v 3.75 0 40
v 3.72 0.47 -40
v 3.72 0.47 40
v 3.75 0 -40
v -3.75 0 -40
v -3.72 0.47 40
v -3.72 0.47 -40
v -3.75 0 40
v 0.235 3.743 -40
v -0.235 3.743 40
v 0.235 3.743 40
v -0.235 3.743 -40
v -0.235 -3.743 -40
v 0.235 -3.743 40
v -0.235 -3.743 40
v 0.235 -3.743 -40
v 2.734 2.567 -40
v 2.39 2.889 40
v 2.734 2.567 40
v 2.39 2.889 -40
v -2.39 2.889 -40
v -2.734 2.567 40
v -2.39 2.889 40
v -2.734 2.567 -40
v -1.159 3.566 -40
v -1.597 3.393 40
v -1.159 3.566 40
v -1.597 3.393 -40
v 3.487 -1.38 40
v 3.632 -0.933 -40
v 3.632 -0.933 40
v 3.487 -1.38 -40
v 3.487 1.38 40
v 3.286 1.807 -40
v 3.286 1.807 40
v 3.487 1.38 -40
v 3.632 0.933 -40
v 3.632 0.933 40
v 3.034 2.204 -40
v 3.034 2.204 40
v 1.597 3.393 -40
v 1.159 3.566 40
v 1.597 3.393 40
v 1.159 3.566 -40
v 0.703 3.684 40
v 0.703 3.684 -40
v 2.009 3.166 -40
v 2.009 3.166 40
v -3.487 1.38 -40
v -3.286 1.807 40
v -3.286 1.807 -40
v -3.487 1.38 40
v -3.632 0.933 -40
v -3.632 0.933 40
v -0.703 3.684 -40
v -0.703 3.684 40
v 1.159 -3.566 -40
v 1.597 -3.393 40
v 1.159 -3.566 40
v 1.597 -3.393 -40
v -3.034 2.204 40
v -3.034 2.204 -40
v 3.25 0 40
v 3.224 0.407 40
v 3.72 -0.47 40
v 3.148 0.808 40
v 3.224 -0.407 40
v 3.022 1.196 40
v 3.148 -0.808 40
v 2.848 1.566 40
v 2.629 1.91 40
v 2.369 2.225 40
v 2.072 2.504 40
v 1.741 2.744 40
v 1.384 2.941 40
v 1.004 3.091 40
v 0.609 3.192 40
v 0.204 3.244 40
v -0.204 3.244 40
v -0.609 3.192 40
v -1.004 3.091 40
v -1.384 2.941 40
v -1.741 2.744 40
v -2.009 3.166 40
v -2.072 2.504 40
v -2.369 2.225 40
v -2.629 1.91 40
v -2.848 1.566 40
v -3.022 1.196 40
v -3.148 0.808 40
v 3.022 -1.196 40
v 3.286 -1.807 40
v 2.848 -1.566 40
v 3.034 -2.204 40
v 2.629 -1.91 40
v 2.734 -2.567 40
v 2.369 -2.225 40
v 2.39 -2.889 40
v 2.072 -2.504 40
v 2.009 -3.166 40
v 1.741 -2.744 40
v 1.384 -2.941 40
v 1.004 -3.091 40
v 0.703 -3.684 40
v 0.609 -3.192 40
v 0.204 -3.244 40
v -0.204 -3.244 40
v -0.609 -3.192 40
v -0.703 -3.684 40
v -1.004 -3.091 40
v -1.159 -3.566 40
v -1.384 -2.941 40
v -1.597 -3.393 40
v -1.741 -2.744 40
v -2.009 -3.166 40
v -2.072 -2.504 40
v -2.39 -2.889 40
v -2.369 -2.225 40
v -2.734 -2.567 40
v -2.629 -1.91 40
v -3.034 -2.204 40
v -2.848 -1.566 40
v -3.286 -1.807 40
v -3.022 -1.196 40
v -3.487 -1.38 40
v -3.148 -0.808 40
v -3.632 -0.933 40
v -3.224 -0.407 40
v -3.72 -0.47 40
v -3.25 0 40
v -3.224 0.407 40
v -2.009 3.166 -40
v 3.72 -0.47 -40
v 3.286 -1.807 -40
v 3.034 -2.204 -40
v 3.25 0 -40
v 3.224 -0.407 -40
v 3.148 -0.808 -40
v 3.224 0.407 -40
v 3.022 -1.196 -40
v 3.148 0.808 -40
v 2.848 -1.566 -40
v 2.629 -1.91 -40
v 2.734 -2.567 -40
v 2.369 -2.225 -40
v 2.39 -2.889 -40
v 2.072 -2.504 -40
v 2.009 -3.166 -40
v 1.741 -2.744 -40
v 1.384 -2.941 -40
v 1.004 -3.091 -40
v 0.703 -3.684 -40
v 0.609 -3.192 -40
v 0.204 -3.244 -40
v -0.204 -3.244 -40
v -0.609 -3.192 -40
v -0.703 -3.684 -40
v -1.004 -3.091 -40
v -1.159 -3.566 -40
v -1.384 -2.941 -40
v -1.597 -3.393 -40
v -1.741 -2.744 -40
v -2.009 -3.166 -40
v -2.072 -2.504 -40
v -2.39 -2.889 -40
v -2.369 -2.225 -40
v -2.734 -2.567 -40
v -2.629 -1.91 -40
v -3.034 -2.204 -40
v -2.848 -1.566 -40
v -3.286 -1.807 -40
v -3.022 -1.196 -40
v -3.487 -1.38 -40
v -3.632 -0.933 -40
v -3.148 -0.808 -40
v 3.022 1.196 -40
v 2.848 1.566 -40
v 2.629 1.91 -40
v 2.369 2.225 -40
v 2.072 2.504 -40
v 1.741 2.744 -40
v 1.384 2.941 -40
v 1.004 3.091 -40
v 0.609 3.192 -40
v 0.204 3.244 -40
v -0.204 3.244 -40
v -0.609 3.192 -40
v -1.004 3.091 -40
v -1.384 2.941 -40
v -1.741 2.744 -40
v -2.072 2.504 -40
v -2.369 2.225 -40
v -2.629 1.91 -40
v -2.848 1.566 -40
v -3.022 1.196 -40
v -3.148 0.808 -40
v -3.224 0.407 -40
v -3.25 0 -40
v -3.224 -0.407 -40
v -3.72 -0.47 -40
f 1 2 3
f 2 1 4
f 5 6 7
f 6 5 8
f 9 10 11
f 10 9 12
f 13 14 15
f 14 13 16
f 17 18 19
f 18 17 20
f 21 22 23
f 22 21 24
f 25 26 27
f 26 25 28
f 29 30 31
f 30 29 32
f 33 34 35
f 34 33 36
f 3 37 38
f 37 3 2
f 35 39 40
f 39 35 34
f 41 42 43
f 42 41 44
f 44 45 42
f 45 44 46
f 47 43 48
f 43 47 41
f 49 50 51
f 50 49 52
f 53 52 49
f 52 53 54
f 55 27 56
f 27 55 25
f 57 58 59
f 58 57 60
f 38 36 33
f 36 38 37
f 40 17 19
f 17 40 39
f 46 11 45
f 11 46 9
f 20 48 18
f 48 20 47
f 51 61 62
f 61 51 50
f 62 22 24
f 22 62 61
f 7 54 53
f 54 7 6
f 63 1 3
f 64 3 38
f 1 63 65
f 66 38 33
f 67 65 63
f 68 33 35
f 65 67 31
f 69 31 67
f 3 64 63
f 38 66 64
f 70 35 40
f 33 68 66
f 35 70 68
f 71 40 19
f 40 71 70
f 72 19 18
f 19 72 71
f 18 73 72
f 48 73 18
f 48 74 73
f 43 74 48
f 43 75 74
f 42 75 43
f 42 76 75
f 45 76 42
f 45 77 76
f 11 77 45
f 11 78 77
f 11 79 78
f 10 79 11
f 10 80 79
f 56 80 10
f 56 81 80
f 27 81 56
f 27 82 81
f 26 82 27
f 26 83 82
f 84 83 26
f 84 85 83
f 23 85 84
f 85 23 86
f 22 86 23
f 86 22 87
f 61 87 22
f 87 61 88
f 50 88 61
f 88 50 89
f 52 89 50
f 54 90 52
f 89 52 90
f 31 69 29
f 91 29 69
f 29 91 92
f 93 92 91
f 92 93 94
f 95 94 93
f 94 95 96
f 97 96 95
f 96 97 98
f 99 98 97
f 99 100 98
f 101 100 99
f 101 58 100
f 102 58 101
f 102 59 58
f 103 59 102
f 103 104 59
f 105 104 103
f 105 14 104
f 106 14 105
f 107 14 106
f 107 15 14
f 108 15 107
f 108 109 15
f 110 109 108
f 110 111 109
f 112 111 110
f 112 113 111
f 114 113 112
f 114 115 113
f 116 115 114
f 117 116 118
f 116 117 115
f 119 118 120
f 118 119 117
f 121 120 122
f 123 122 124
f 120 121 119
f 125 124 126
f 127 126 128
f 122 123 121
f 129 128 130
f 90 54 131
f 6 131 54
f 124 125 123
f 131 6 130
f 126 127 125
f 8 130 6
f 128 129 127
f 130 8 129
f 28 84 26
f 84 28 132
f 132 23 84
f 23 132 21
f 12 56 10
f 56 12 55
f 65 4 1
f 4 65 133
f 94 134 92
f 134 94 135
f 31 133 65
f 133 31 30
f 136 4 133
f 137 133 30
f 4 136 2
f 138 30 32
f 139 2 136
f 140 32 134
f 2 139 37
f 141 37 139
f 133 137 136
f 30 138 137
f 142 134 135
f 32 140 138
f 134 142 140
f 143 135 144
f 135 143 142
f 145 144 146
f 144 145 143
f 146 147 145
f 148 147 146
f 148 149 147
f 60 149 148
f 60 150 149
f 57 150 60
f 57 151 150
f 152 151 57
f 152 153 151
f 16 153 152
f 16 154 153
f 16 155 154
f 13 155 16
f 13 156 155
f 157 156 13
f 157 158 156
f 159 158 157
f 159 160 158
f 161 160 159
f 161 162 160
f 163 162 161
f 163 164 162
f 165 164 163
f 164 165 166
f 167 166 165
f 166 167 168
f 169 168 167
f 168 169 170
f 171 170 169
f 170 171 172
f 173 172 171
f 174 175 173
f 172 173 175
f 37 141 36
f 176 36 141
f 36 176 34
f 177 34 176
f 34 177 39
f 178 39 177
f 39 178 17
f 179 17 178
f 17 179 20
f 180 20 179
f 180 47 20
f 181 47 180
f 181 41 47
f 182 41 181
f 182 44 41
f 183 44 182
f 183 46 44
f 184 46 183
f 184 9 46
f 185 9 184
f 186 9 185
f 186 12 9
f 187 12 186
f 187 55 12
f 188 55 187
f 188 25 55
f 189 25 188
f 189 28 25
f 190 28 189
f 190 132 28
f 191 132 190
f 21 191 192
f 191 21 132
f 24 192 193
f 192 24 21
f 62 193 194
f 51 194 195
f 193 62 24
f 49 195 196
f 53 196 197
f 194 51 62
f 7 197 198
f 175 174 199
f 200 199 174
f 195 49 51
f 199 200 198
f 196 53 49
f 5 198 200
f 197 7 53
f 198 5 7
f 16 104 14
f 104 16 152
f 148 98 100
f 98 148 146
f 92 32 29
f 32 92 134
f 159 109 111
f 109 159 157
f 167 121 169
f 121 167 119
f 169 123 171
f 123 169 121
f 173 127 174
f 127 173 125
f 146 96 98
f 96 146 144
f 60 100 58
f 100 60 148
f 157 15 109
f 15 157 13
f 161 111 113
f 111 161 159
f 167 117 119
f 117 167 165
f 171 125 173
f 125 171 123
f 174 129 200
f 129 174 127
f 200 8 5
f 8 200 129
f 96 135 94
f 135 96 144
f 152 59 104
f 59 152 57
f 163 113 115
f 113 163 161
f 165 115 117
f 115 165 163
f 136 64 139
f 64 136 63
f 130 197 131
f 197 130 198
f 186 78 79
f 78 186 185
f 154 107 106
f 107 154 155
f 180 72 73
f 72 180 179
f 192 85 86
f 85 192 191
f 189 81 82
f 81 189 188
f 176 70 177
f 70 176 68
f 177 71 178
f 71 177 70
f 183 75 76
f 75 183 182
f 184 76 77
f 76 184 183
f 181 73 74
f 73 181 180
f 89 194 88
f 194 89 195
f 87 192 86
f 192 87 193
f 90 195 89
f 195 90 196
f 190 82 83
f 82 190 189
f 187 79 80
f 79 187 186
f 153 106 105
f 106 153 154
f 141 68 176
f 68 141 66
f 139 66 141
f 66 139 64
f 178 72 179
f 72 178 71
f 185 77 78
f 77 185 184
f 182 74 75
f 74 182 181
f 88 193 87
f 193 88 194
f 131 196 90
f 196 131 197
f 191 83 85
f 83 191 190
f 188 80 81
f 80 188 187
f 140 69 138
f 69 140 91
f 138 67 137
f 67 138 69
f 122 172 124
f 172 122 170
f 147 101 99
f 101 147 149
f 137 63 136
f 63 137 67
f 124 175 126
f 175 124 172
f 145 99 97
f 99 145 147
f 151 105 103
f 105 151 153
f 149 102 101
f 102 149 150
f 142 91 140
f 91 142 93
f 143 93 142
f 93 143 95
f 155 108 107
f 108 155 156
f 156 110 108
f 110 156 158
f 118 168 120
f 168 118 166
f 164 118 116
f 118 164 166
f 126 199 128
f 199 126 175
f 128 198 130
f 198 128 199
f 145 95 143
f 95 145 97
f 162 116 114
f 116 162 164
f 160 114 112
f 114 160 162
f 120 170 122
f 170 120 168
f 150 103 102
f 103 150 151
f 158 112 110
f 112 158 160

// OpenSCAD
$fn = 50;


difference() {
	union() {
		translate(v = [0, 0, -40.0000000000]) {
			cylinder(h = 80, r = 3.7500000000);
		}
	}
	union() {
		translate(v = [0, 0, -100.0000000000]) {
			cylinder(h = 200, r = 3.2500000000);
		}
	}
}
